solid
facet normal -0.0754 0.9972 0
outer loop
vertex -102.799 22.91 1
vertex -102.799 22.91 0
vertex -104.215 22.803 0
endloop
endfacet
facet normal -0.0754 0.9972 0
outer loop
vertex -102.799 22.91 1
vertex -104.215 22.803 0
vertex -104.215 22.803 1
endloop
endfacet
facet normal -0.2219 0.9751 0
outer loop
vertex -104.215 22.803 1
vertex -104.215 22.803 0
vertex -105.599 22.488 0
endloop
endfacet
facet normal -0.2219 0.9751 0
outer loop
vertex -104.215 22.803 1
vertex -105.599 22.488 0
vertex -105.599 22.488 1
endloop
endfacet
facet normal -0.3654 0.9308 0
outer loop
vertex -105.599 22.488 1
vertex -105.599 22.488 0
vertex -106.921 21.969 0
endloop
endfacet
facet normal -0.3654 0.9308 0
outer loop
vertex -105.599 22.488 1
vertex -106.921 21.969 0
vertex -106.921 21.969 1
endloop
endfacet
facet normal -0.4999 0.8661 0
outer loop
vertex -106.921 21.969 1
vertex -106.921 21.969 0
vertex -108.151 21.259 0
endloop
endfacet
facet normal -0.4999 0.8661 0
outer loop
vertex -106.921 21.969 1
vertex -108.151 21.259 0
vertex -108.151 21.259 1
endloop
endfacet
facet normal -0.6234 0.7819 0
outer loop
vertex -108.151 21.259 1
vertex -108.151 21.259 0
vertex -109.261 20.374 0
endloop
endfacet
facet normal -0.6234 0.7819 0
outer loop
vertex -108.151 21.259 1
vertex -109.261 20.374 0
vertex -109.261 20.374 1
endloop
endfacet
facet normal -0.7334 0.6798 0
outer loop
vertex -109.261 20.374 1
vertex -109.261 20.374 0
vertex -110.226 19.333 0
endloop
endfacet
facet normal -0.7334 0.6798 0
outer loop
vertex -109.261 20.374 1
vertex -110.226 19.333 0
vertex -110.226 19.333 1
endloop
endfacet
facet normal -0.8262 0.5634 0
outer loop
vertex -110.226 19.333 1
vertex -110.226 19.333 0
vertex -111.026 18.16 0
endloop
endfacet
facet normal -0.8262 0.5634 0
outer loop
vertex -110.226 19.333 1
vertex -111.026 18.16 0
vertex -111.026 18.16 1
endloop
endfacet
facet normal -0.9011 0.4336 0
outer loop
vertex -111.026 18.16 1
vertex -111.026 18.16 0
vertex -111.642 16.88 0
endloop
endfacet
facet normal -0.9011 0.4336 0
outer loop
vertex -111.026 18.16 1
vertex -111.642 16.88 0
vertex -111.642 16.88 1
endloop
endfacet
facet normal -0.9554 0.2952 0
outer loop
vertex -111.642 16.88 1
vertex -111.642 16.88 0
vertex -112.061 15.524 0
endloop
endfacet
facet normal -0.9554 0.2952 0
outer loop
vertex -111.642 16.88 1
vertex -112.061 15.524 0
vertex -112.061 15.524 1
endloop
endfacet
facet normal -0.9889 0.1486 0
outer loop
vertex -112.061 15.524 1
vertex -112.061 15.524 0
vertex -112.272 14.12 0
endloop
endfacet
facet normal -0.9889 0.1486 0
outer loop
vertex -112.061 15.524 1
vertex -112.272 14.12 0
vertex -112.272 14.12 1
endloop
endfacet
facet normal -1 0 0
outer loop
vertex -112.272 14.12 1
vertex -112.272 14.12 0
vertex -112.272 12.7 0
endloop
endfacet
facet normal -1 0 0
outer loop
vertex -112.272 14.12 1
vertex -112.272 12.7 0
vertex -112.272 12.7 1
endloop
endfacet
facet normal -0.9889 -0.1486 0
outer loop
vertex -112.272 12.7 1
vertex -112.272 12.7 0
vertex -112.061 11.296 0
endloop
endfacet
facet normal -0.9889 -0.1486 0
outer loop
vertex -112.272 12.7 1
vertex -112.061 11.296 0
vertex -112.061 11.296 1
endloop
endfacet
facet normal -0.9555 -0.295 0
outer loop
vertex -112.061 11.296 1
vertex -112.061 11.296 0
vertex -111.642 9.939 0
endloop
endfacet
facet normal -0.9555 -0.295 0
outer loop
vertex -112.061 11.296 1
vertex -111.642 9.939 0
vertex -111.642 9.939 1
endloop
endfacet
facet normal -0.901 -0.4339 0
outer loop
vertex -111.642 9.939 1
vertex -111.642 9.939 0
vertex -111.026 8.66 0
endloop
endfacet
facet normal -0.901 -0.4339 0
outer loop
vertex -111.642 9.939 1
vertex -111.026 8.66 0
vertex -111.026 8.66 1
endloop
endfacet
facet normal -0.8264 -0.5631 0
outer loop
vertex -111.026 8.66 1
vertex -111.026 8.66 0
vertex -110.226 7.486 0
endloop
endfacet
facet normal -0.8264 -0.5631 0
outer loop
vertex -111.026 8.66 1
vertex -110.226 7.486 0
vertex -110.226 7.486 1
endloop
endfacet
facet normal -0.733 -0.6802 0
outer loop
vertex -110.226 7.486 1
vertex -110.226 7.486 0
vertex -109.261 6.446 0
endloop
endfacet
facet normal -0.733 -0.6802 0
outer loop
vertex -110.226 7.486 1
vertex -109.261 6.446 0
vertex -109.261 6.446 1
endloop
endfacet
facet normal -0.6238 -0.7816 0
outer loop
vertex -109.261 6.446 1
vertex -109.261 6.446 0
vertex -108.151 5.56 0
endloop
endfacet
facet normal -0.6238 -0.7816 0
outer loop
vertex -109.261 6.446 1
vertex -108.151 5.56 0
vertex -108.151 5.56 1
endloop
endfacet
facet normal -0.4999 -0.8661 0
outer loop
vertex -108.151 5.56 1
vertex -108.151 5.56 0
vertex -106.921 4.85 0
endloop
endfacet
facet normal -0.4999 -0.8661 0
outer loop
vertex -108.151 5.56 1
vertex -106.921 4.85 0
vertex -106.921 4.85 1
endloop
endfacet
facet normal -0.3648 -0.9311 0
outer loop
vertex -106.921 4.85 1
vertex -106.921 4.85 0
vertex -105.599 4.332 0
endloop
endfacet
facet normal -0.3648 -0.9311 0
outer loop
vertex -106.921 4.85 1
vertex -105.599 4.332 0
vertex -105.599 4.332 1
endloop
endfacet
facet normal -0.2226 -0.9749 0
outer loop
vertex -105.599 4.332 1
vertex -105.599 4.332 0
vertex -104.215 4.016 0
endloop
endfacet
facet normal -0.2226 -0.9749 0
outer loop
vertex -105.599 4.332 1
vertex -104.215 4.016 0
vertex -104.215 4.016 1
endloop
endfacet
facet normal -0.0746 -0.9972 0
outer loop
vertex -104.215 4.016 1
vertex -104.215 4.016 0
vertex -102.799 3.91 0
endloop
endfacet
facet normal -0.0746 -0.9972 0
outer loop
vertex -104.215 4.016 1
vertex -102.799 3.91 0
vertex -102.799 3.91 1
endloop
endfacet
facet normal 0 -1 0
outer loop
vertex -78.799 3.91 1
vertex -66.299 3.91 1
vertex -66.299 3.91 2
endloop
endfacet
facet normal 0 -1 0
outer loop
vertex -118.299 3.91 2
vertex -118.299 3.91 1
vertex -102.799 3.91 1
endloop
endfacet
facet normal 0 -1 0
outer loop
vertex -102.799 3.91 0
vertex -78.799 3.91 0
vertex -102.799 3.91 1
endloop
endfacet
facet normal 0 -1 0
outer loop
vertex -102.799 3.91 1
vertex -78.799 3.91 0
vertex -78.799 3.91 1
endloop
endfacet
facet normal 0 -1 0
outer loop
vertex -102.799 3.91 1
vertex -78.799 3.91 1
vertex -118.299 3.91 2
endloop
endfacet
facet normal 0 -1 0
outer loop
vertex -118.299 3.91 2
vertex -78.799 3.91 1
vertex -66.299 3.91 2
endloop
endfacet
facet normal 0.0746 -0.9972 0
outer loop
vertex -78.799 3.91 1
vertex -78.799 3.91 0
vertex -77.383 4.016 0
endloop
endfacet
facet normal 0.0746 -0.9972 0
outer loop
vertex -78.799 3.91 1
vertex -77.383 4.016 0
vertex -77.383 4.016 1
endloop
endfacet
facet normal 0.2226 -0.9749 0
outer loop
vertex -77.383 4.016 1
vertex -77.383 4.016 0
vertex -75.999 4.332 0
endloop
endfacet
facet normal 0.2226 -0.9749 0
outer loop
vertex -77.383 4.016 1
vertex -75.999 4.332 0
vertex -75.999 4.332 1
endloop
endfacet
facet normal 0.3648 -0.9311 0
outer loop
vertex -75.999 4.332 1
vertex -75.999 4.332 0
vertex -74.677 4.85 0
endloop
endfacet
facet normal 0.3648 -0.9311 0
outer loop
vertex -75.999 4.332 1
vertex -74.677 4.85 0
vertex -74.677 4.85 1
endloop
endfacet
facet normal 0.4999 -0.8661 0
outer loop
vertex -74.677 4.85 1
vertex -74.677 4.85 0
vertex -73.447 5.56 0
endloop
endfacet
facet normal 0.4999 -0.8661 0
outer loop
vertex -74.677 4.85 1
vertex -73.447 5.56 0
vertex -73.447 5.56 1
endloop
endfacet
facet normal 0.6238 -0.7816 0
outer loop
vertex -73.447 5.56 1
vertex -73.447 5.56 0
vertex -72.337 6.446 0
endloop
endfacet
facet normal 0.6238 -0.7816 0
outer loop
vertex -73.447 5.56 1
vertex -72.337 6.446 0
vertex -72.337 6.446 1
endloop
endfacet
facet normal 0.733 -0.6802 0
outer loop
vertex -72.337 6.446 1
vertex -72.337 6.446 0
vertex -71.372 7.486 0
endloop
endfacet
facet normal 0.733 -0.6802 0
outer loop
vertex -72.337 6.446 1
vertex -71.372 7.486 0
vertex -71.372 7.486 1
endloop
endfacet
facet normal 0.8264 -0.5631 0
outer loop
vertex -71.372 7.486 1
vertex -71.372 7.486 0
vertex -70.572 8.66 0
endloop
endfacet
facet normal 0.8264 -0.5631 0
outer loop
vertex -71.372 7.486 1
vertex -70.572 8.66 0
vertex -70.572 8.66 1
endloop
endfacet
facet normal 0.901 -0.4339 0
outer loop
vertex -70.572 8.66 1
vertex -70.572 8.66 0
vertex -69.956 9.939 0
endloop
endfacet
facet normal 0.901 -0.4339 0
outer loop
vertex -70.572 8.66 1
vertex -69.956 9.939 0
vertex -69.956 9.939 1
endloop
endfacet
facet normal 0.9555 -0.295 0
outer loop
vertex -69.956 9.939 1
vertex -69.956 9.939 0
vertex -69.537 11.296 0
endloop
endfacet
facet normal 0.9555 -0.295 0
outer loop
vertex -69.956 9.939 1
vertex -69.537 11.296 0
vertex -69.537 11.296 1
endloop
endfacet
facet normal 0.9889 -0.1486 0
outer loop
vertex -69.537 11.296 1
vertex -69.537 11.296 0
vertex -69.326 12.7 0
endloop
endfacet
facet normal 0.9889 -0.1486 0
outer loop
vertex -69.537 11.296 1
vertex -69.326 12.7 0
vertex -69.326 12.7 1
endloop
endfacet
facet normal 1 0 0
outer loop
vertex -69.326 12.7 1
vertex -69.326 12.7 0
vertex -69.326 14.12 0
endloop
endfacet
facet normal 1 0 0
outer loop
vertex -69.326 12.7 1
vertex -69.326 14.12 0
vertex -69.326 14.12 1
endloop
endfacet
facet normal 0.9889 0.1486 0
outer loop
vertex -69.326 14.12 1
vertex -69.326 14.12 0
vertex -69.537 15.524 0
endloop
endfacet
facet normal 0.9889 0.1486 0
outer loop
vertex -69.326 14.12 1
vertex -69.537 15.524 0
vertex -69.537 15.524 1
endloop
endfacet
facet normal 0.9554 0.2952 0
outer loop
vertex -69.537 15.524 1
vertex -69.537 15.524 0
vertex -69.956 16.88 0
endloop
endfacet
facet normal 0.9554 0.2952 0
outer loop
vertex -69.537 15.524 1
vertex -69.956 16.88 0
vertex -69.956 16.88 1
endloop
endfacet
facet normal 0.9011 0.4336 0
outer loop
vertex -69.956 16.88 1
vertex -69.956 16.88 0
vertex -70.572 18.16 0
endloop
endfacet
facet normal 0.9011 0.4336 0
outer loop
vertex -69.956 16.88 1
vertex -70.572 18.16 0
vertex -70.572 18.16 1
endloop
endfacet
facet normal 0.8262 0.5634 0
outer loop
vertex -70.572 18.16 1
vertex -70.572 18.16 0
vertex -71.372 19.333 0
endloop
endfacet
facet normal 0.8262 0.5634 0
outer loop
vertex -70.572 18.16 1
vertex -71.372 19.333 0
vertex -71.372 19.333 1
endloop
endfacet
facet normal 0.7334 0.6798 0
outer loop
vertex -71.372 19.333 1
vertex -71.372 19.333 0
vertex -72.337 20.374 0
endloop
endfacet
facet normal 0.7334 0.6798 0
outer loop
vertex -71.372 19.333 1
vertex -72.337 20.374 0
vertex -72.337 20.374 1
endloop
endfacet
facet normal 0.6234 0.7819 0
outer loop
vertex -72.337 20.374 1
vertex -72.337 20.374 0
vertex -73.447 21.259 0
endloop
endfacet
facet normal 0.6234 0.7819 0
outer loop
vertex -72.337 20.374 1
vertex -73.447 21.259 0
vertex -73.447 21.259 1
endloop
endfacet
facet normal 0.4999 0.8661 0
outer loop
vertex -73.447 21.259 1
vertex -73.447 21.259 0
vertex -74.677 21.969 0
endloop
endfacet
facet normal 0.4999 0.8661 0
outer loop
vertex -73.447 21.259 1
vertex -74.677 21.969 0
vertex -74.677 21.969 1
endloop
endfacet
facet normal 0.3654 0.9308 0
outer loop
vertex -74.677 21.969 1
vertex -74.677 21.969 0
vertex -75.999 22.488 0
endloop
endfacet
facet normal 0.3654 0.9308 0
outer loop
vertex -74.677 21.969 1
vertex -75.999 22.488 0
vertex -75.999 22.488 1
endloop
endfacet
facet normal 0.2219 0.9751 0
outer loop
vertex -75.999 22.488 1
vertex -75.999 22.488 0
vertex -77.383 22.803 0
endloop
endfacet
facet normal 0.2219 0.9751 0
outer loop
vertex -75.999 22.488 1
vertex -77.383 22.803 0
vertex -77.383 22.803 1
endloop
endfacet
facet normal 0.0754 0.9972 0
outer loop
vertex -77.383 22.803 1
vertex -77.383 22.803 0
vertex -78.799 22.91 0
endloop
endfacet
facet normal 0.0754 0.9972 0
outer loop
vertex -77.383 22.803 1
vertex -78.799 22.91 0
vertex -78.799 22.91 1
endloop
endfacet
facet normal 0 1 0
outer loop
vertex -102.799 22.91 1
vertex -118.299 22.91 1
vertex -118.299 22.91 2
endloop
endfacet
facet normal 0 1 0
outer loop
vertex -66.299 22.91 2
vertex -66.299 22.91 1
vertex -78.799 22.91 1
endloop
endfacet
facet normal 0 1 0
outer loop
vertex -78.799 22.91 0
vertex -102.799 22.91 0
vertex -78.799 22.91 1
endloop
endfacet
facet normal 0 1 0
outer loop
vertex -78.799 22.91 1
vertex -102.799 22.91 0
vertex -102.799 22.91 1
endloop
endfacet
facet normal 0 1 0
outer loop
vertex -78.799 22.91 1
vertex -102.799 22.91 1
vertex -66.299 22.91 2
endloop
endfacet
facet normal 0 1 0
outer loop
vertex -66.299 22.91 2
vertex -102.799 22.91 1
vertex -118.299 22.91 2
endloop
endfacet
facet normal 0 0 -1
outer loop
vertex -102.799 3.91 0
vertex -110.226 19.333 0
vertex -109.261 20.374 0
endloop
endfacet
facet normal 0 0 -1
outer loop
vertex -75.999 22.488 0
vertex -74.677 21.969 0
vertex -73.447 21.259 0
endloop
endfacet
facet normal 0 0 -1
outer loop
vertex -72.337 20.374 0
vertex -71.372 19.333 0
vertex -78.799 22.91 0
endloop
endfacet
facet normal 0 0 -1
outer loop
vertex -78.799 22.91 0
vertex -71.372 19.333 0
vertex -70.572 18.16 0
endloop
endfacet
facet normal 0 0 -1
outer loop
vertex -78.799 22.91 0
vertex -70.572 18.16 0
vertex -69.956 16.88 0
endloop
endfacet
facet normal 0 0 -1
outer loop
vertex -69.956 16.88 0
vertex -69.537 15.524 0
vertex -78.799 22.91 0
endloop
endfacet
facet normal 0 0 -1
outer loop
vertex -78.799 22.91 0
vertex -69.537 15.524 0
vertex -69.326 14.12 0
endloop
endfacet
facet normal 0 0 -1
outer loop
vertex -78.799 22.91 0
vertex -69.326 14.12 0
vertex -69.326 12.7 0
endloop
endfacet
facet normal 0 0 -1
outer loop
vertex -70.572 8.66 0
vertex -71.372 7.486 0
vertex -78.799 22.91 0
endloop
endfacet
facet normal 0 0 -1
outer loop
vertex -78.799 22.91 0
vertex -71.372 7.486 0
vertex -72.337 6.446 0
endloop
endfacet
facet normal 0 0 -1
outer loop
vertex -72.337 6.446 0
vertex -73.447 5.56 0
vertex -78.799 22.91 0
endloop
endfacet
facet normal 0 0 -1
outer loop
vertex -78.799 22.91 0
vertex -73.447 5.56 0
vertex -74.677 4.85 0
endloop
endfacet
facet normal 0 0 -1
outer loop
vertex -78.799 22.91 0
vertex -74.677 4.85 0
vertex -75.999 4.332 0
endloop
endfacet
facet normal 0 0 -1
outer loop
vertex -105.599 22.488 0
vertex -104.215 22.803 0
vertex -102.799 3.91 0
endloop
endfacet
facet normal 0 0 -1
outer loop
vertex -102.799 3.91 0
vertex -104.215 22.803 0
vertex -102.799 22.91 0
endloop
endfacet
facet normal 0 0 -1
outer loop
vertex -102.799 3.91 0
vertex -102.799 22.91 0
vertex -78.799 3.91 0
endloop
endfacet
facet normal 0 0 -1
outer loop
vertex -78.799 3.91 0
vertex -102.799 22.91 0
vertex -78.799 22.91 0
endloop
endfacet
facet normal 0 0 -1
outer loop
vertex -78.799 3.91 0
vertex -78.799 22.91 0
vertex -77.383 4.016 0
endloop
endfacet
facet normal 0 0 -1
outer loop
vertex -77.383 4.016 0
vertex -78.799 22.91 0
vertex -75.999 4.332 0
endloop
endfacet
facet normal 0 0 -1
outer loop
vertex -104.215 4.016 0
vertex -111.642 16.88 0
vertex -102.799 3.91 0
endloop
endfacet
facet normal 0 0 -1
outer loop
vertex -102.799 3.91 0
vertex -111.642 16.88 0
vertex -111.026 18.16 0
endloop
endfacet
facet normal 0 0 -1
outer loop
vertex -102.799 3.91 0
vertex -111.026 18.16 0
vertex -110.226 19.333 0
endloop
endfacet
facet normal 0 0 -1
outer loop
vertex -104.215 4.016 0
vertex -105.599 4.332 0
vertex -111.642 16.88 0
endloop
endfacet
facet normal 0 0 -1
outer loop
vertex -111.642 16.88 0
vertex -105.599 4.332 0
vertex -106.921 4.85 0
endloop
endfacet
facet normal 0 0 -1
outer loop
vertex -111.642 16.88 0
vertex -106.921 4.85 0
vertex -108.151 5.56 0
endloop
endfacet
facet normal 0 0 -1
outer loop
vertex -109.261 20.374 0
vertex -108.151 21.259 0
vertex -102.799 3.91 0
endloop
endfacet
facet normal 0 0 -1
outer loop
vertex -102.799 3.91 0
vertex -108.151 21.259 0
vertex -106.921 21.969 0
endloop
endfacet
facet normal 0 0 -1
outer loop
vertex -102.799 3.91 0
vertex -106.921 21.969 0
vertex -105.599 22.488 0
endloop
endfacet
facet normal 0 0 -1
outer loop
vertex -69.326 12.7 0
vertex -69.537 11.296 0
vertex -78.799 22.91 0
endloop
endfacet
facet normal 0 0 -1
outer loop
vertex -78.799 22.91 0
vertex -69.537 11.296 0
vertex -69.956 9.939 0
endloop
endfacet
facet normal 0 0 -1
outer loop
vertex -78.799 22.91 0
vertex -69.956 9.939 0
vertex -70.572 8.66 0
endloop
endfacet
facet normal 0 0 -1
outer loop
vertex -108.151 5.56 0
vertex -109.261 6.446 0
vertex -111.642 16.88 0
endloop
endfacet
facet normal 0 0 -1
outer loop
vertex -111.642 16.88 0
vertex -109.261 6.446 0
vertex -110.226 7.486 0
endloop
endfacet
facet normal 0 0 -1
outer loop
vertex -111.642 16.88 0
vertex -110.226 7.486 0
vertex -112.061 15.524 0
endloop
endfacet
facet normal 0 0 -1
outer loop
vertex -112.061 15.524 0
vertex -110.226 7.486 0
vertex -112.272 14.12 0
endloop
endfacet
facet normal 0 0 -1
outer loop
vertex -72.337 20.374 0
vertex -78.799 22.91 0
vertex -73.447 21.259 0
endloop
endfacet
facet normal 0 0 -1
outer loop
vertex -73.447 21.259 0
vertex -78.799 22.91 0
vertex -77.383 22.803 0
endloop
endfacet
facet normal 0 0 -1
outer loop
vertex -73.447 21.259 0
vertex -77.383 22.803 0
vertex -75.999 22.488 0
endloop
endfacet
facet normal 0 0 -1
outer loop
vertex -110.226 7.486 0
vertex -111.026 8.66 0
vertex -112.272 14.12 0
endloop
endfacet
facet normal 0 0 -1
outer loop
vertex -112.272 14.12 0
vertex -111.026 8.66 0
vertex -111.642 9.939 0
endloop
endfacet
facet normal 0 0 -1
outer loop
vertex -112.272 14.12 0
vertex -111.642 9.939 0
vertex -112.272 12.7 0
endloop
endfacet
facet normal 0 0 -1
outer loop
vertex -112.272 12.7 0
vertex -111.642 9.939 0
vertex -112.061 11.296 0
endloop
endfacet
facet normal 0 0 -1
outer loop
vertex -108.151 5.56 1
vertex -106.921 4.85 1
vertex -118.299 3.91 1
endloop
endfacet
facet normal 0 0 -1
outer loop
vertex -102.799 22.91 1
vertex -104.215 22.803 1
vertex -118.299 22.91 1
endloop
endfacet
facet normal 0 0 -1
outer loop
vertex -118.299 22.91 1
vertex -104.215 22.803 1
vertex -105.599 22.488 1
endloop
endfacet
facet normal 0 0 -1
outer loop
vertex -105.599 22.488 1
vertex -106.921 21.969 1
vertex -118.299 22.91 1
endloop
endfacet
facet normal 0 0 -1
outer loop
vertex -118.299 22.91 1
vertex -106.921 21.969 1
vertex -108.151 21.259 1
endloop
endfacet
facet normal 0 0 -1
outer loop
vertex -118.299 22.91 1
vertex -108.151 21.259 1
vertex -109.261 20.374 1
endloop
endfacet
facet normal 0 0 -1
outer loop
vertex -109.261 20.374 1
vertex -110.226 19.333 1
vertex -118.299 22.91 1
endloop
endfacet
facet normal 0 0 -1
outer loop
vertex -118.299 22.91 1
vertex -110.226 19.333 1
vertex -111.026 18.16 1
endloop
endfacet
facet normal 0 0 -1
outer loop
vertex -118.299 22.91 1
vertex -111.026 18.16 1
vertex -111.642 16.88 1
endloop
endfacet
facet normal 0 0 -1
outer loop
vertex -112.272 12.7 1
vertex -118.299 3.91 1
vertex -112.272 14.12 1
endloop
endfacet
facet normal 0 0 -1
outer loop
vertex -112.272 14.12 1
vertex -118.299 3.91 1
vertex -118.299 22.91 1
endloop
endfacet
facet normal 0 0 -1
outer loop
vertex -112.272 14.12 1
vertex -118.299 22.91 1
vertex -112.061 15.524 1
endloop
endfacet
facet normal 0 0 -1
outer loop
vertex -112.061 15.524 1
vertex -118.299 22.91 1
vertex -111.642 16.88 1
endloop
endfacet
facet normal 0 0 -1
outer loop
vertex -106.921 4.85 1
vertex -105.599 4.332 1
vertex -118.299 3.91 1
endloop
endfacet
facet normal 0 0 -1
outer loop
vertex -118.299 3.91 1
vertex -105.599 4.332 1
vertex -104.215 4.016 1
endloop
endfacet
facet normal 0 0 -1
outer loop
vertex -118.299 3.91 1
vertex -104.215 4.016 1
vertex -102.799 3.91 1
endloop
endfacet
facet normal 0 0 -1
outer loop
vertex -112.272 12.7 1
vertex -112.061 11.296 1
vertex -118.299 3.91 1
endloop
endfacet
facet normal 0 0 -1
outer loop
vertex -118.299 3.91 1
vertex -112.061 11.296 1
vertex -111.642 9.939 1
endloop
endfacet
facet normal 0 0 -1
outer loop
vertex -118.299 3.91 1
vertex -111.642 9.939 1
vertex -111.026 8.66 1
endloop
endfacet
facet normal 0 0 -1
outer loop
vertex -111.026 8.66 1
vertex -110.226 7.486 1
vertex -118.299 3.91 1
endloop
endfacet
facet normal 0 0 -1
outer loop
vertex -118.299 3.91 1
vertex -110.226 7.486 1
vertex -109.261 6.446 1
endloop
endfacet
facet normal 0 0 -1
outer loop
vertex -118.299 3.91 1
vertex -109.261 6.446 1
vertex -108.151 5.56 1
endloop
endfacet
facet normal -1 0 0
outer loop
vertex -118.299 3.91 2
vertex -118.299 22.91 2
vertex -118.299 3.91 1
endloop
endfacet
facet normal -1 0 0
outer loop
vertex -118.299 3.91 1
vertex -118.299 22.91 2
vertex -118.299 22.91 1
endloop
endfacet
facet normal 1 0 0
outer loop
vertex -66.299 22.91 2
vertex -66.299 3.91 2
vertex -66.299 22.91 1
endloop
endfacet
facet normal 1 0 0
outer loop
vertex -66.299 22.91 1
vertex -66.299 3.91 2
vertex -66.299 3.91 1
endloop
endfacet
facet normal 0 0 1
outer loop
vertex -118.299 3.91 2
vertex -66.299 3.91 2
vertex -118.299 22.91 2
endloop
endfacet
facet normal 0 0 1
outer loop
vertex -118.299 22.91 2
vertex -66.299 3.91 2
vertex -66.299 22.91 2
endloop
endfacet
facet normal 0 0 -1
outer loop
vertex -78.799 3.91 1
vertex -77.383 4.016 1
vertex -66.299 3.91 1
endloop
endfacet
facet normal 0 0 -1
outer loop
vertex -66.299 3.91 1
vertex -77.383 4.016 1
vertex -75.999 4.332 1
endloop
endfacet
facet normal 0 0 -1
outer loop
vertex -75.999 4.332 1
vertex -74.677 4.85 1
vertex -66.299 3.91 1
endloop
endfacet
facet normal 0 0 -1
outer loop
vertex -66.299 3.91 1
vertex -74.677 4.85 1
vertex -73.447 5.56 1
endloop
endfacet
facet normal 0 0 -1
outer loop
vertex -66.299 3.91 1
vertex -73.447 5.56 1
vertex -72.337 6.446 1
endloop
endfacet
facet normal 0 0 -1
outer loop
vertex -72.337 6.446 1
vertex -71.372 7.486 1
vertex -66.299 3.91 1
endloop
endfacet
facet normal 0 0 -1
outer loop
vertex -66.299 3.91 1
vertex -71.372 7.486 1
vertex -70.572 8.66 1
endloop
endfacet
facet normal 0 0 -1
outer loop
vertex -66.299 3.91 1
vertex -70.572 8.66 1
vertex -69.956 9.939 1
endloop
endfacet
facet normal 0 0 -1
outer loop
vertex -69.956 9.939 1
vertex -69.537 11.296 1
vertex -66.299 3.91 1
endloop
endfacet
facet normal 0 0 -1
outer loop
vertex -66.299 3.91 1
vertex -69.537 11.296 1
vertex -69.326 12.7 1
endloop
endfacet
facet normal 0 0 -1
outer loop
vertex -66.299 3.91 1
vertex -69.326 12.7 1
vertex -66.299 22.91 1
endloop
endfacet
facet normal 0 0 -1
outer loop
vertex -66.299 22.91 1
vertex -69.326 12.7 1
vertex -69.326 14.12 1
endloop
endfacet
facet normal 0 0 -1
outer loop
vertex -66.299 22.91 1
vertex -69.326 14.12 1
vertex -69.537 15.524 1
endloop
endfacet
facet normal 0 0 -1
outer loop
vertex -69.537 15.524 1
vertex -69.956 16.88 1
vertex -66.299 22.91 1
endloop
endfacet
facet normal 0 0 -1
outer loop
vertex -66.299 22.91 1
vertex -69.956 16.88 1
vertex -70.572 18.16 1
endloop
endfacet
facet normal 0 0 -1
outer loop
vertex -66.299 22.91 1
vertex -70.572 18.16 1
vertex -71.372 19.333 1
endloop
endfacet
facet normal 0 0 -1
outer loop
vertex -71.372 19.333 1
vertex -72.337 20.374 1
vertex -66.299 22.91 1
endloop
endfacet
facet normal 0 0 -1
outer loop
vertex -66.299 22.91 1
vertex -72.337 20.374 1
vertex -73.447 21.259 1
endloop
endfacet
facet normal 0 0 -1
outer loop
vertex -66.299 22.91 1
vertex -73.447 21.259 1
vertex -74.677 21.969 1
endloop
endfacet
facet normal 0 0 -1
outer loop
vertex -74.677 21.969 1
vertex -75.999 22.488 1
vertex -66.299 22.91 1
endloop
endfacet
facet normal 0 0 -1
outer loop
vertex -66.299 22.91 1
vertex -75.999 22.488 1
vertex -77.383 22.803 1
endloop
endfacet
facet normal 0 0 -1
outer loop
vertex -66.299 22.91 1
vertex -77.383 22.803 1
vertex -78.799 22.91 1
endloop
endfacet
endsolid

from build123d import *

# Parameters (mm, degrees)
SALIENTE_EXTRUIR1_DEPTH = 1
SALIENTE_EXTRUIR2_DEPTH = 1


with BuildPart() as part:
    # Croquis1 → Saliente-Extruir1 (new body)
    with BuildSketch(Plane.XY):
        with BuildLine():
            Line((-102.798975089, 22.90959253), (-78.798975089, 22.90959253))
            ThreePointArc((-78.798975089, 22.90959253), (-69.298975089, 13.40959253), (-78.798975089, 3.90959253))
            Line((-78.798975089, 3.90959253), (-102.798975089, 3.90959253))
            ThreePointArc((-102.798975089, 3.90959253), (-112.298975089, 13.40959253), (-102.798975089, 22.90959253))
        make_face()
    extrude(amount=SALIENTE_EXTRUIR1_DEPTH)

    # Croquis2 → Saliente-Extruir2 (add)
    with BuildSketch(Plane.XY.offset(1)):
        Polygon((-90.798975089, 22.90959253), (-118.298975089, 22.90959253), (-118.298975089, 3.90959253), (-66.298975089, 3.90959253), (-66.298975089, 22.90959253), align=None)
    extrude(amount=SALIENTE_EXTRUIR2_DEPTH)


solid = part.part
